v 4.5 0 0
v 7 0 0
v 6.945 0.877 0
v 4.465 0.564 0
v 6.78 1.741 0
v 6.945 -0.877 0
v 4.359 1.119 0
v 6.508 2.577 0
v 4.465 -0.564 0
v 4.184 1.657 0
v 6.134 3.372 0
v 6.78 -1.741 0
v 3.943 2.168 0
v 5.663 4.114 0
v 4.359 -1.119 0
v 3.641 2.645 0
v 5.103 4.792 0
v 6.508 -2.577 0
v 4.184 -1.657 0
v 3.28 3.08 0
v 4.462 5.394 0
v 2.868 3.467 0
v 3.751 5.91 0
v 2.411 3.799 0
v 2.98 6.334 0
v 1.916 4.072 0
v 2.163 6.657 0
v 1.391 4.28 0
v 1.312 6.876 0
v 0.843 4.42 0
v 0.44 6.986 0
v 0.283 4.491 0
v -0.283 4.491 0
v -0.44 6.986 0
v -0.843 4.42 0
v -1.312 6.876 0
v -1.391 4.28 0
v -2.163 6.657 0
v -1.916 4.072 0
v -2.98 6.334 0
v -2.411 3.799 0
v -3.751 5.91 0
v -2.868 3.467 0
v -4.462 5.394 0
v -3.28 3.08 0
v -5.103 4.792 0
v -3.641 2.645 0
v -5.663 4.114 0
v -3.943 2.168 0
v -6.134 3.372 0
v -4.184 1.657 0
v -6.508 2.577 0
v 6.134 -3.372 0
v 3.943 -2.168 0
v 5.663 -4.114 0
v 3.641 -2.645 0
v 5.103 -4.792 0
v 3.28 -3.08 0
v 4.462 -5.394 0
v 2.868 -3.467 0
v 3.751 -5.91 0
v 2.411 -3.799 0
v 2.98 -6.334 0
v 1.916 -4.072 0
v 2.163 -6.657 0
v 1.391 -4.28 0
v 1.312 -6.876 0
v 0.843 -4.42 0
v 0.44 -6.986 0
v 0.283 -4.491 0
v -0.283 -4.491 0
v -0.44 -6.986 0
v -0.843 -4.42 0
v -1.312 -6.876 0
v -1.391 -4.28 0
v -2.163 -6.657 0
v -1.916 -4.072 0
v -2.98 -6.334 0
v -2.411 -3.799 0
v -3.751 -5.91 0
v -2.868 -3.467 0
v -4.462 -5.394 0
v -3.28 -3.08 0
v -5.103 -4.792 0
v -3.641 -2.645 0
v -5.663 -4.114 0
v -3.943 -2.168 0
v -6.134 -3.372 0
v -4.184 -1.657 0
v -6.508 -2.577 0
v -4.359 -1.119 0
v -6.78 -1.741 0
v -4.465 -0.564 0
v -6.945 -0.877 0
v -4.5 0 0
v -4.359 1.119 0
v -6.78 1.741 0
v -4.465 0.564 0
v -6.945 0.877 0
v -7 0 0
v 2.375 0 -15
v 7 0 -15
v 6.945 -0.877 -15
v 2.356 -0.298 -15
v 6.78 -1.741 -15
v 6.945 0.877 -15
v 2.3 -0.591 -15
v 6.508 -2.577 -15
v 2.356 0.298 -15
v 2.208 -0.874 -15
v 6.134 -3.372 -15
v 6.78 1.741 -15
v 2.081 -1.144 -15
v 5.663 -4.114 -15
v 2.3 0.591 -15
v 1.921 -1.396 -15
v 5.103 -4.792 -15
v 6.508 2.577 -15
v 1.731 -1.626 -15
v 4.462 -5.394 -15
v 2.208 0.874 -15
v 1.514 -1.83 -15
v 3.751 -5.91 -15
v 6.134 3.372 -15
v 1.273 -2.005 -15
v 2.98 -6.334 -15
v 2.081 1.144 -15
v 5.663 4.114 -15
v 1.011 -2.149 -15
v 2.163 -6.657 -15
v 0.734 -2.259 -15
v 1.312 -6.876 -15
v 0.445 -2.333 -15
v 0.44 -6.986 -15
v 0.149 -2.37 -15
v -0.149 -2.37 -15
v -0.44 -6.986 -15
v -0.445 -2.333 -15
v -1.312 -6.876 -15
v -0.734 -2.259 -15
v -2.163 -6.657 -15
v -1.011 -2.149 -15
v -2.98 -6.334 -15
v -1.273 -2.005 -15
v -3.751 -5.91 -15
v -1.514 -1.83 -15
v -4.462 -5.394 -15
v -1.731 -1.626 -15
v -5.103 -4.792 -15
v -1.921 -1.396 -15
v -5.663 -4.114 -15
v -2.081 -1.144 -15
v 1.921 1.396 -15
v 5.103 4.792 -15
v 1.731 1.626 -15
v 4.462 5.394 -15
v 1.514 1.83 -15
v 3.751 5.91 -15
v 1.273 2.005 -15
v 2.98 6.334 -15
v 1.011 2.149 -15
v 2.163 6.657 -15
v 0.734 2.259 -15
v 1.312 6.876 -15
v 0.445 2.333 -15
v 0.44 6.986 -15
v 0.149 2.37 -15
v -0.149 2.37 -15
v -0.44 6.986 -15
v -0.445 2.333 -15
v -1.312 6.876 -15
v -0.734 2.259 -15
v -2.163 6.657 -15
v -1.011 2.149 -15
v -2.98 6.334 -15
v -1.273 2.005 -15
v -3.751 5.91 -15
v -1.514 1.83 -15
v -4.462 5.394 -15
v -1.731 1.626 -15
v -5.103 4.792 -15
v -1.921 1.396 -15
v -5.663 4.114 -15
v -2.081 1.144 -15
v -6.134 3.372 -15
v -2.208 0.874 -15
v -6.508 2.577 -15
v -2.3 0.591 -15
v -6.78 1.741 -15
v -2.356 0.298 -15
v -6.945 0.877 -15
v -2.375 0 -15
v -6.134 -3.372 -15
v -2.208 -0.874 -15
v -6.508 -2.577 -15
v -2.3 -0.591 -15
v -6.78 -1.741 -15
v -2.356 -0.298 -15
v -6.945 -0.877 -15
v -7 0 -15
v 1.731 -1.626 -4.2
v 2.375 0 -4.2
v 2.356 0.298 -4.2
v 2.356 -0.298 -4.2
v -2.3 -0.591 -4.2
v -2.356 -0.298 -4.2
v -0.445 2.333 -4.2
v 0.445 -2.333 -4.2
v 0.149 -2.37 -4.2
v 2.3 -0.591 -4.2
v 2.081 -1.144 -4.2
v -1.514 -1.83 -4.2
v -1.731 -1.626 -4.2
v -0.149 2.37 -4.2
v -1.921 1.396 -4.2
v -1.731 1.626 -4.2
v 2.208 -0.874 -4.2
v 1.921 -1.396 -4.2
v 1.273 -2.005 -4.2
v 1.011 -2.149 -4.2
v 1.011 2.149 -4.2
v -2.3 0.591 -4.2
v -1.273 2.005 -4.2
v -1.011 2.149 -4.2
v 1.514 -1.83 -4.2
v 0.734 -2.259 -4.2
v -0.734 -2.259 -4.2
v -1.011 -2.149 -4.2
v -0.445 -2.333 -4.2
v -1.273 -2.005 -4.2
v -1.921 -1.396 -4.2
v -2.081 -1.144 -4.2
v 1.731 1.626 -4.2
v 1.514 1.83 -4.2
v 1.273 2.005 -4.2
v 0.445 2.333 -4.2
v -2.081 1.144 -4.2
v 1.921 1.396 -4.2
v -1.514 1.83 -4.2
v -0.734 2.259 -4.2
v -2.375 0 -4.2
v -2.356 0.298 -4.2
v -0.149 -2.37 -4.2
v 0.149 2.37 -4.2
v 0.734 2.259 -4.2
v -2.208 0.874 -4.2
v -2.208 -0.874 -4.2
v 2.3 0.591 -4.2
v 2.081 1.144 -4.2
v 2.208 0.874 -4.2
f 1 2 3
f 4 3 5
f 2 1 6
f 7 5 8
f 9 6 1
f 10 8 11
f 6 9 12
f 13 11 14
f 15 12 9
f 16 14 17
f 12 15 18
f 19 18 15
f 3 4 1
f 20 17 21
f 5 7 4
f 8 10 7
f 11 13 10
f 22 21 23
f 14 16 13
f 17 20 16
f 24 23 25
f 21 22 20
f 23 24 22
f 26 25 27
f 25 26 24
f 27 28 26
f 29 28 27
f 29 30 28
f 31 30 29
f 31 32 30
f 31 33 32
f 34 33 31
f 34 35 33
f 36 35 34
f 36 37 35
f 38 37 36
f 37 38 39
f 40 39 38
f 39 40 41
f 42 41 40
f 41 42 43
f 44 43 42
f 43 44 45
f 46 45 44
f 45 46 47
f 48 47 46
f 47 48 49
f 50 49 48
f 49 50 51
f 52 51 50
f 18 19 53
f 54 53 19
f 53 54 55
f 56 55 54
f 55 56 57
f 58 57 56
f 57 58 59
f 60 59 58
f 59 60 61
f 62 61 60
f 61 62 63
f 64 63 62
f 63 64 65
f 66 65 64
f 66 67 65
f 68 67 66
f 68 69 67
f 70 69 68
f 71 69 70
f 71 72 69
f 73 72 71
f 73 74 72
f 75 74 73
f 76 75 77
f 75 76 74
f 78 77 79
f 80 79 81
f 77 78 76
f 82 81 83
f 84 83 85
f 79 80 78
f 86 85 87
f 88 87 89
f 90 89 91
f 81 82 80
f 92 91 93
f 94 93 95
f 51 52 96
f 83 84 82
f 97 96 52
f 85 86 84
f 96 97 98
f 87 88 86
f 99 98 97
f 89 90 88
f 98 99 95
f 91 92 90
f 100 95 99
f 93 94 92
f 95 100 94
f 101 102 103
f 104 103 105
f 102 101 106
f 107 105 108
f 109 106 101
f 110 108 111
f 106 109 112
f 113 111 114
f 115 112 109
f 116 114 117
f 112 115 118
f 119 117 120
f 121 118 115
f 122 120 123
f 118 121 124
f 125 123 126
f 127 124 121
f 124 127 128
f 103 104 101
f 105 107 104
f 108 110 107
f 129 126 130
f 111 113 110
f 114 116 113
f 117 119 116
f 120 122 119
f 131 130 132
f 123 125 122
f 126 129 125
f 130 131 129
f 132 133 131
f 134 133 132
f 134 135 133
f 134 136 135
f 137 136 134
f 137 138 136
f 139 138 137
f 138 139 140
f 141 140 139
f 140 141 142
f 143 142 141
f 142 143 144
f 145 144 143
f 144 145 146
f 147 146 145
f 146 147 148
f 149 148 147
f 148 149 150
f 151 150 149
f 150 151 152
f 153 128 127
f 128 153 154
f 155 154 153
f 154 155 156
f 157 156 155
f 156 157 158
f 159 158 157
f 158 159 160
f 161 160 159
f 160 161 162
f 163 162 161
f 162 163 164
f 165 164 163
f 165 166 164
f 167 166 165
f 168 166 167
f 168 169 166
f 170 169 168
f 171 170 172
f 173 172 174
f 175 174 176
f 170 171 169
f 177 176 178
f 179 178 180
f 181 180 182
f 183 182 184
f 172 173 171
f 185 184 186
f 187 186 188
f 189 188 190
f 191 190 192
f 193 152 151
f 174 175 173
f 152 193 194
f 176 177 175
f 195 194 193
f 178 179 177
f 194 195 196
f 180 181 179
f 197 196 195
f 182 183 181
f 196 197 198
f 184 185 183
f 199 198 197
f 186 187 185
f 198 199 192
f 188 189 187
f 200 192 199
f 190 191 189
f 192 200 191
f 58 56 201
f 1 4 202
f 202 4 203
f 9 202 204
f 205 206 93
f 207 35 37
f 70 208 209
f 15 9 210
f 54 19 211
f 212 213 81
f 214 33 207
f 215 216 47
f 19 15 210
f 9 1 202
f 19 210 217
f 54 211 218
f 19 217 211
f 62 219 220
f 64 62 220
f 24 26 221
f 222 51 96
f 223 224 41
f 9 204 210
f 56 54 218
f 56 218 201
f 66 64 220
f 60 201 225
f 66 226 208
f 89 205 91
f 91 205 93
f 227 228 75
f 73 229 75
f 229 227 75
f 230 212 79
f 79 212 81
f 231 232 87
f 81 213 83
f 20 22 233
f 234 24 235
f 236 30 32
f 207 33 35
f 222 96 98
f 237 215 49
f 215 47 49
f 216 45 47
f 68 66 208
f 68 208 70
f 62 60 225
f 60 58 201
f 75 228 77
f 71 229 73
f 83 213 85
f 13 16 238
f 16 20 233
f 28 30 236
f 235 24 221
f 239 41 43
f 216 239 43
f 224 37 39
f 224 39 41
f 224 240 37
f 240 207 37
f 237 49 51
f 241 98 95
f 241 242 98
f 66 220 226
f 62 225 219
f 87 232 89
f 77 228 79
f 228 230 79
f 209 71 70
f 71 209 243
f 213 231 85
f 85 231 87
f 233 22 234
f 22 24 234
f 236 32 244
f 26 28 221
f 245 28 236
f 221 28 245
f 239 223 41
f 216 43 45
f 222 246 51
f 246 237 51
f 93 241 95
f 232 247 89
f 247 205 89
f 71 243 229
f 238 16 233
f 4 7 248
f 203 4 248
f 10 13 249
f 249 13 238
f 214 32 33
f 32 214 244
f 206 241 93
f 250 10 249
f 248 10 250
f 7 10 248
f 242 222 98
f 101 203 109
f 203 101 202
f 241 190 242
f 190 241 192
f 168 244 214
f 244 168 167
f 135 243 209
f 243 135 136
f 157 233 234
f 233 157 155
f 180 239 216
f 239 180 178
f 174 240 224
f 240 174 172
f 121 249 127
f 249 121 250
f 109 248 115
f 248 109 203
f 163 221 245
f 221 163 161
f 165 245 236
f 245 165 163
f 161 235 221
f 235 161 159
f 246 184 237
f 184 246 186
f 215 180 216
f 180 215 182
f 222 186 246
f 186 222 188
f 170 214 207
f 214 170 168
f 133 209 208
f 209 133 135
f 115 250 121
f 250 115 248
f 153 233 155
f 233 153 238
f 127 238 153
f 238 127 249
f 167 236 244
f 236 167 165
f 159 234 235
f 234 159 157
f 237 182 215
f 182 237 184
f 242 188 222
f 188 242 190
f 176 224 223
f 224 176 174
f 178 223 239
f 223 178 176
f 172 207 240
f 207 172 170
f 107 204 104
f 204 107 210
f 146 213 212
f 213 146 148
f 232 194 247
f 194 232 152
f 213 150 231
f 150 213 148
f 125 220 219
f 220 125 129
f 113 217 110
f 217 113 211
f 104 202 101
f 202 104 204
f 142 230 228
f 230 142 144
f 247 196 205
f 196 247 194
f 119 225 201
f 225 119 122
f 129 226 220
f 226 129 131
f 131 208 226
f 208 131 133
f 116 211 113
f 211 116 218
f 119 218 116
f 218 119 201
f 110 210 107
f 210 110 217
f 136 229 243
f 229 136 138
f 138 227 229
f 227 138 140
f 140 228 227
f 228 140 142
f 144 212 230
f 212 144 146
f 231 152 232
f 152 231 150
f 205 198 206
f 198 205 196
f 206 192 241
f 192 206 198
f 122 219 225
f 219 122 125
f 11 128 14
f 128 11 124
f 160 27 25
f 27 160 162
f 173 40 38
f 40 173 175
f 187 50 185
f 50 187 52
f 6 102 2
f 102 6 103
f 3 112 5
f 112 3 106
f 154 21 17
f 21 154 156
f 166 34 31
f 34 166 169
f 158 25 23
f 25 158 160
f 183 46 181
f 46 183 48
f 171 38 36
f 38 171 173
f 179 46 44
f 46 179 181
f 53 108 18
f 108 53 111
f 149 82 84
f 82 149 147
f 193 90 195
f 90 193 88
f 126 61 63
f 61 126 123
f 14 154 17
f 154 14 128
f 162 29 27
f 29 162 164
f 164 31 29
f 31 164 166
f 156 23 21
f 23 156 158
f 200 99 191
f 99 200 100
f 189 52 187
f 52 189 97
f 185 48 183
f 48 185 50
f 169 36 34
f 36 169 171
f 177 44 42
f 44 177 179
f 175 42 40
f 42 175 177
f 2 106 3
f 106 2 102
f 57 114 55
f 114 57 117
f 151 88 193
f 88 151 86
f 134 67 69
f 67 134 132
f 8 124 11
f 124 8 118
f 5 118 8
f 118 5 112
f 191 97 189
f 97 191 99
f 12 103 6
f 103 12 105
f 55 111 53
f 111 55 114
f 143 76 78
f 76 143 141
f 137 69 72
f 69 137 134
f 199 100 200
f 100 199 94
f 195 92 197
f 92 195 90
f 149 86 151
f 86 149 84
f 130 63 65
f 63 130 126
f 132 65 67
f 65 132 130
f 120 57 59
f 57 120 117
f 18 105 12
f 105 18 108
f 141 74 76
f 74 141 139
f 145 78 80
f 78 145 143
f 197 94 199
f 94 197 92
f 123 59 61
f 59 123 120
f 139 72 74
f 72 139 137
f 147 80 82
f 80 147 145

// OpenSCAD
$fn = 50;


difference() {
	union() {
		translate(v = [0, 0, -15.0000000000]) {
			cylinder(h = 15, r = 7.0000000000);
		}
	}
	union() {
		translate(v = [0, 0, 0]) {
			rotate(a = [0, 0, 0]) {
				difference() {
					union() {
						#translate(v = [0, 0, -15.0000000000]) {
							cylinder(h = 15, r = 2.2500000000);
						}
						#translate(v = [0, 0, -4.2000000000]) {
							cylinder(h = 4.2000000000, r1 = 2.3750000000, r2 = 4.5000000000);
						}
						#translate(v = [0, 0, -15.0000000000]) {
							cylinder(h = 15, r = 2.3750000000);
						}
						#translate(v = [0, 0, -15.0000000000]) {
							cylinder(h = 15, r = 2.2500000000);
						}
					}
					union();
				}
			}
		}
	}
}
